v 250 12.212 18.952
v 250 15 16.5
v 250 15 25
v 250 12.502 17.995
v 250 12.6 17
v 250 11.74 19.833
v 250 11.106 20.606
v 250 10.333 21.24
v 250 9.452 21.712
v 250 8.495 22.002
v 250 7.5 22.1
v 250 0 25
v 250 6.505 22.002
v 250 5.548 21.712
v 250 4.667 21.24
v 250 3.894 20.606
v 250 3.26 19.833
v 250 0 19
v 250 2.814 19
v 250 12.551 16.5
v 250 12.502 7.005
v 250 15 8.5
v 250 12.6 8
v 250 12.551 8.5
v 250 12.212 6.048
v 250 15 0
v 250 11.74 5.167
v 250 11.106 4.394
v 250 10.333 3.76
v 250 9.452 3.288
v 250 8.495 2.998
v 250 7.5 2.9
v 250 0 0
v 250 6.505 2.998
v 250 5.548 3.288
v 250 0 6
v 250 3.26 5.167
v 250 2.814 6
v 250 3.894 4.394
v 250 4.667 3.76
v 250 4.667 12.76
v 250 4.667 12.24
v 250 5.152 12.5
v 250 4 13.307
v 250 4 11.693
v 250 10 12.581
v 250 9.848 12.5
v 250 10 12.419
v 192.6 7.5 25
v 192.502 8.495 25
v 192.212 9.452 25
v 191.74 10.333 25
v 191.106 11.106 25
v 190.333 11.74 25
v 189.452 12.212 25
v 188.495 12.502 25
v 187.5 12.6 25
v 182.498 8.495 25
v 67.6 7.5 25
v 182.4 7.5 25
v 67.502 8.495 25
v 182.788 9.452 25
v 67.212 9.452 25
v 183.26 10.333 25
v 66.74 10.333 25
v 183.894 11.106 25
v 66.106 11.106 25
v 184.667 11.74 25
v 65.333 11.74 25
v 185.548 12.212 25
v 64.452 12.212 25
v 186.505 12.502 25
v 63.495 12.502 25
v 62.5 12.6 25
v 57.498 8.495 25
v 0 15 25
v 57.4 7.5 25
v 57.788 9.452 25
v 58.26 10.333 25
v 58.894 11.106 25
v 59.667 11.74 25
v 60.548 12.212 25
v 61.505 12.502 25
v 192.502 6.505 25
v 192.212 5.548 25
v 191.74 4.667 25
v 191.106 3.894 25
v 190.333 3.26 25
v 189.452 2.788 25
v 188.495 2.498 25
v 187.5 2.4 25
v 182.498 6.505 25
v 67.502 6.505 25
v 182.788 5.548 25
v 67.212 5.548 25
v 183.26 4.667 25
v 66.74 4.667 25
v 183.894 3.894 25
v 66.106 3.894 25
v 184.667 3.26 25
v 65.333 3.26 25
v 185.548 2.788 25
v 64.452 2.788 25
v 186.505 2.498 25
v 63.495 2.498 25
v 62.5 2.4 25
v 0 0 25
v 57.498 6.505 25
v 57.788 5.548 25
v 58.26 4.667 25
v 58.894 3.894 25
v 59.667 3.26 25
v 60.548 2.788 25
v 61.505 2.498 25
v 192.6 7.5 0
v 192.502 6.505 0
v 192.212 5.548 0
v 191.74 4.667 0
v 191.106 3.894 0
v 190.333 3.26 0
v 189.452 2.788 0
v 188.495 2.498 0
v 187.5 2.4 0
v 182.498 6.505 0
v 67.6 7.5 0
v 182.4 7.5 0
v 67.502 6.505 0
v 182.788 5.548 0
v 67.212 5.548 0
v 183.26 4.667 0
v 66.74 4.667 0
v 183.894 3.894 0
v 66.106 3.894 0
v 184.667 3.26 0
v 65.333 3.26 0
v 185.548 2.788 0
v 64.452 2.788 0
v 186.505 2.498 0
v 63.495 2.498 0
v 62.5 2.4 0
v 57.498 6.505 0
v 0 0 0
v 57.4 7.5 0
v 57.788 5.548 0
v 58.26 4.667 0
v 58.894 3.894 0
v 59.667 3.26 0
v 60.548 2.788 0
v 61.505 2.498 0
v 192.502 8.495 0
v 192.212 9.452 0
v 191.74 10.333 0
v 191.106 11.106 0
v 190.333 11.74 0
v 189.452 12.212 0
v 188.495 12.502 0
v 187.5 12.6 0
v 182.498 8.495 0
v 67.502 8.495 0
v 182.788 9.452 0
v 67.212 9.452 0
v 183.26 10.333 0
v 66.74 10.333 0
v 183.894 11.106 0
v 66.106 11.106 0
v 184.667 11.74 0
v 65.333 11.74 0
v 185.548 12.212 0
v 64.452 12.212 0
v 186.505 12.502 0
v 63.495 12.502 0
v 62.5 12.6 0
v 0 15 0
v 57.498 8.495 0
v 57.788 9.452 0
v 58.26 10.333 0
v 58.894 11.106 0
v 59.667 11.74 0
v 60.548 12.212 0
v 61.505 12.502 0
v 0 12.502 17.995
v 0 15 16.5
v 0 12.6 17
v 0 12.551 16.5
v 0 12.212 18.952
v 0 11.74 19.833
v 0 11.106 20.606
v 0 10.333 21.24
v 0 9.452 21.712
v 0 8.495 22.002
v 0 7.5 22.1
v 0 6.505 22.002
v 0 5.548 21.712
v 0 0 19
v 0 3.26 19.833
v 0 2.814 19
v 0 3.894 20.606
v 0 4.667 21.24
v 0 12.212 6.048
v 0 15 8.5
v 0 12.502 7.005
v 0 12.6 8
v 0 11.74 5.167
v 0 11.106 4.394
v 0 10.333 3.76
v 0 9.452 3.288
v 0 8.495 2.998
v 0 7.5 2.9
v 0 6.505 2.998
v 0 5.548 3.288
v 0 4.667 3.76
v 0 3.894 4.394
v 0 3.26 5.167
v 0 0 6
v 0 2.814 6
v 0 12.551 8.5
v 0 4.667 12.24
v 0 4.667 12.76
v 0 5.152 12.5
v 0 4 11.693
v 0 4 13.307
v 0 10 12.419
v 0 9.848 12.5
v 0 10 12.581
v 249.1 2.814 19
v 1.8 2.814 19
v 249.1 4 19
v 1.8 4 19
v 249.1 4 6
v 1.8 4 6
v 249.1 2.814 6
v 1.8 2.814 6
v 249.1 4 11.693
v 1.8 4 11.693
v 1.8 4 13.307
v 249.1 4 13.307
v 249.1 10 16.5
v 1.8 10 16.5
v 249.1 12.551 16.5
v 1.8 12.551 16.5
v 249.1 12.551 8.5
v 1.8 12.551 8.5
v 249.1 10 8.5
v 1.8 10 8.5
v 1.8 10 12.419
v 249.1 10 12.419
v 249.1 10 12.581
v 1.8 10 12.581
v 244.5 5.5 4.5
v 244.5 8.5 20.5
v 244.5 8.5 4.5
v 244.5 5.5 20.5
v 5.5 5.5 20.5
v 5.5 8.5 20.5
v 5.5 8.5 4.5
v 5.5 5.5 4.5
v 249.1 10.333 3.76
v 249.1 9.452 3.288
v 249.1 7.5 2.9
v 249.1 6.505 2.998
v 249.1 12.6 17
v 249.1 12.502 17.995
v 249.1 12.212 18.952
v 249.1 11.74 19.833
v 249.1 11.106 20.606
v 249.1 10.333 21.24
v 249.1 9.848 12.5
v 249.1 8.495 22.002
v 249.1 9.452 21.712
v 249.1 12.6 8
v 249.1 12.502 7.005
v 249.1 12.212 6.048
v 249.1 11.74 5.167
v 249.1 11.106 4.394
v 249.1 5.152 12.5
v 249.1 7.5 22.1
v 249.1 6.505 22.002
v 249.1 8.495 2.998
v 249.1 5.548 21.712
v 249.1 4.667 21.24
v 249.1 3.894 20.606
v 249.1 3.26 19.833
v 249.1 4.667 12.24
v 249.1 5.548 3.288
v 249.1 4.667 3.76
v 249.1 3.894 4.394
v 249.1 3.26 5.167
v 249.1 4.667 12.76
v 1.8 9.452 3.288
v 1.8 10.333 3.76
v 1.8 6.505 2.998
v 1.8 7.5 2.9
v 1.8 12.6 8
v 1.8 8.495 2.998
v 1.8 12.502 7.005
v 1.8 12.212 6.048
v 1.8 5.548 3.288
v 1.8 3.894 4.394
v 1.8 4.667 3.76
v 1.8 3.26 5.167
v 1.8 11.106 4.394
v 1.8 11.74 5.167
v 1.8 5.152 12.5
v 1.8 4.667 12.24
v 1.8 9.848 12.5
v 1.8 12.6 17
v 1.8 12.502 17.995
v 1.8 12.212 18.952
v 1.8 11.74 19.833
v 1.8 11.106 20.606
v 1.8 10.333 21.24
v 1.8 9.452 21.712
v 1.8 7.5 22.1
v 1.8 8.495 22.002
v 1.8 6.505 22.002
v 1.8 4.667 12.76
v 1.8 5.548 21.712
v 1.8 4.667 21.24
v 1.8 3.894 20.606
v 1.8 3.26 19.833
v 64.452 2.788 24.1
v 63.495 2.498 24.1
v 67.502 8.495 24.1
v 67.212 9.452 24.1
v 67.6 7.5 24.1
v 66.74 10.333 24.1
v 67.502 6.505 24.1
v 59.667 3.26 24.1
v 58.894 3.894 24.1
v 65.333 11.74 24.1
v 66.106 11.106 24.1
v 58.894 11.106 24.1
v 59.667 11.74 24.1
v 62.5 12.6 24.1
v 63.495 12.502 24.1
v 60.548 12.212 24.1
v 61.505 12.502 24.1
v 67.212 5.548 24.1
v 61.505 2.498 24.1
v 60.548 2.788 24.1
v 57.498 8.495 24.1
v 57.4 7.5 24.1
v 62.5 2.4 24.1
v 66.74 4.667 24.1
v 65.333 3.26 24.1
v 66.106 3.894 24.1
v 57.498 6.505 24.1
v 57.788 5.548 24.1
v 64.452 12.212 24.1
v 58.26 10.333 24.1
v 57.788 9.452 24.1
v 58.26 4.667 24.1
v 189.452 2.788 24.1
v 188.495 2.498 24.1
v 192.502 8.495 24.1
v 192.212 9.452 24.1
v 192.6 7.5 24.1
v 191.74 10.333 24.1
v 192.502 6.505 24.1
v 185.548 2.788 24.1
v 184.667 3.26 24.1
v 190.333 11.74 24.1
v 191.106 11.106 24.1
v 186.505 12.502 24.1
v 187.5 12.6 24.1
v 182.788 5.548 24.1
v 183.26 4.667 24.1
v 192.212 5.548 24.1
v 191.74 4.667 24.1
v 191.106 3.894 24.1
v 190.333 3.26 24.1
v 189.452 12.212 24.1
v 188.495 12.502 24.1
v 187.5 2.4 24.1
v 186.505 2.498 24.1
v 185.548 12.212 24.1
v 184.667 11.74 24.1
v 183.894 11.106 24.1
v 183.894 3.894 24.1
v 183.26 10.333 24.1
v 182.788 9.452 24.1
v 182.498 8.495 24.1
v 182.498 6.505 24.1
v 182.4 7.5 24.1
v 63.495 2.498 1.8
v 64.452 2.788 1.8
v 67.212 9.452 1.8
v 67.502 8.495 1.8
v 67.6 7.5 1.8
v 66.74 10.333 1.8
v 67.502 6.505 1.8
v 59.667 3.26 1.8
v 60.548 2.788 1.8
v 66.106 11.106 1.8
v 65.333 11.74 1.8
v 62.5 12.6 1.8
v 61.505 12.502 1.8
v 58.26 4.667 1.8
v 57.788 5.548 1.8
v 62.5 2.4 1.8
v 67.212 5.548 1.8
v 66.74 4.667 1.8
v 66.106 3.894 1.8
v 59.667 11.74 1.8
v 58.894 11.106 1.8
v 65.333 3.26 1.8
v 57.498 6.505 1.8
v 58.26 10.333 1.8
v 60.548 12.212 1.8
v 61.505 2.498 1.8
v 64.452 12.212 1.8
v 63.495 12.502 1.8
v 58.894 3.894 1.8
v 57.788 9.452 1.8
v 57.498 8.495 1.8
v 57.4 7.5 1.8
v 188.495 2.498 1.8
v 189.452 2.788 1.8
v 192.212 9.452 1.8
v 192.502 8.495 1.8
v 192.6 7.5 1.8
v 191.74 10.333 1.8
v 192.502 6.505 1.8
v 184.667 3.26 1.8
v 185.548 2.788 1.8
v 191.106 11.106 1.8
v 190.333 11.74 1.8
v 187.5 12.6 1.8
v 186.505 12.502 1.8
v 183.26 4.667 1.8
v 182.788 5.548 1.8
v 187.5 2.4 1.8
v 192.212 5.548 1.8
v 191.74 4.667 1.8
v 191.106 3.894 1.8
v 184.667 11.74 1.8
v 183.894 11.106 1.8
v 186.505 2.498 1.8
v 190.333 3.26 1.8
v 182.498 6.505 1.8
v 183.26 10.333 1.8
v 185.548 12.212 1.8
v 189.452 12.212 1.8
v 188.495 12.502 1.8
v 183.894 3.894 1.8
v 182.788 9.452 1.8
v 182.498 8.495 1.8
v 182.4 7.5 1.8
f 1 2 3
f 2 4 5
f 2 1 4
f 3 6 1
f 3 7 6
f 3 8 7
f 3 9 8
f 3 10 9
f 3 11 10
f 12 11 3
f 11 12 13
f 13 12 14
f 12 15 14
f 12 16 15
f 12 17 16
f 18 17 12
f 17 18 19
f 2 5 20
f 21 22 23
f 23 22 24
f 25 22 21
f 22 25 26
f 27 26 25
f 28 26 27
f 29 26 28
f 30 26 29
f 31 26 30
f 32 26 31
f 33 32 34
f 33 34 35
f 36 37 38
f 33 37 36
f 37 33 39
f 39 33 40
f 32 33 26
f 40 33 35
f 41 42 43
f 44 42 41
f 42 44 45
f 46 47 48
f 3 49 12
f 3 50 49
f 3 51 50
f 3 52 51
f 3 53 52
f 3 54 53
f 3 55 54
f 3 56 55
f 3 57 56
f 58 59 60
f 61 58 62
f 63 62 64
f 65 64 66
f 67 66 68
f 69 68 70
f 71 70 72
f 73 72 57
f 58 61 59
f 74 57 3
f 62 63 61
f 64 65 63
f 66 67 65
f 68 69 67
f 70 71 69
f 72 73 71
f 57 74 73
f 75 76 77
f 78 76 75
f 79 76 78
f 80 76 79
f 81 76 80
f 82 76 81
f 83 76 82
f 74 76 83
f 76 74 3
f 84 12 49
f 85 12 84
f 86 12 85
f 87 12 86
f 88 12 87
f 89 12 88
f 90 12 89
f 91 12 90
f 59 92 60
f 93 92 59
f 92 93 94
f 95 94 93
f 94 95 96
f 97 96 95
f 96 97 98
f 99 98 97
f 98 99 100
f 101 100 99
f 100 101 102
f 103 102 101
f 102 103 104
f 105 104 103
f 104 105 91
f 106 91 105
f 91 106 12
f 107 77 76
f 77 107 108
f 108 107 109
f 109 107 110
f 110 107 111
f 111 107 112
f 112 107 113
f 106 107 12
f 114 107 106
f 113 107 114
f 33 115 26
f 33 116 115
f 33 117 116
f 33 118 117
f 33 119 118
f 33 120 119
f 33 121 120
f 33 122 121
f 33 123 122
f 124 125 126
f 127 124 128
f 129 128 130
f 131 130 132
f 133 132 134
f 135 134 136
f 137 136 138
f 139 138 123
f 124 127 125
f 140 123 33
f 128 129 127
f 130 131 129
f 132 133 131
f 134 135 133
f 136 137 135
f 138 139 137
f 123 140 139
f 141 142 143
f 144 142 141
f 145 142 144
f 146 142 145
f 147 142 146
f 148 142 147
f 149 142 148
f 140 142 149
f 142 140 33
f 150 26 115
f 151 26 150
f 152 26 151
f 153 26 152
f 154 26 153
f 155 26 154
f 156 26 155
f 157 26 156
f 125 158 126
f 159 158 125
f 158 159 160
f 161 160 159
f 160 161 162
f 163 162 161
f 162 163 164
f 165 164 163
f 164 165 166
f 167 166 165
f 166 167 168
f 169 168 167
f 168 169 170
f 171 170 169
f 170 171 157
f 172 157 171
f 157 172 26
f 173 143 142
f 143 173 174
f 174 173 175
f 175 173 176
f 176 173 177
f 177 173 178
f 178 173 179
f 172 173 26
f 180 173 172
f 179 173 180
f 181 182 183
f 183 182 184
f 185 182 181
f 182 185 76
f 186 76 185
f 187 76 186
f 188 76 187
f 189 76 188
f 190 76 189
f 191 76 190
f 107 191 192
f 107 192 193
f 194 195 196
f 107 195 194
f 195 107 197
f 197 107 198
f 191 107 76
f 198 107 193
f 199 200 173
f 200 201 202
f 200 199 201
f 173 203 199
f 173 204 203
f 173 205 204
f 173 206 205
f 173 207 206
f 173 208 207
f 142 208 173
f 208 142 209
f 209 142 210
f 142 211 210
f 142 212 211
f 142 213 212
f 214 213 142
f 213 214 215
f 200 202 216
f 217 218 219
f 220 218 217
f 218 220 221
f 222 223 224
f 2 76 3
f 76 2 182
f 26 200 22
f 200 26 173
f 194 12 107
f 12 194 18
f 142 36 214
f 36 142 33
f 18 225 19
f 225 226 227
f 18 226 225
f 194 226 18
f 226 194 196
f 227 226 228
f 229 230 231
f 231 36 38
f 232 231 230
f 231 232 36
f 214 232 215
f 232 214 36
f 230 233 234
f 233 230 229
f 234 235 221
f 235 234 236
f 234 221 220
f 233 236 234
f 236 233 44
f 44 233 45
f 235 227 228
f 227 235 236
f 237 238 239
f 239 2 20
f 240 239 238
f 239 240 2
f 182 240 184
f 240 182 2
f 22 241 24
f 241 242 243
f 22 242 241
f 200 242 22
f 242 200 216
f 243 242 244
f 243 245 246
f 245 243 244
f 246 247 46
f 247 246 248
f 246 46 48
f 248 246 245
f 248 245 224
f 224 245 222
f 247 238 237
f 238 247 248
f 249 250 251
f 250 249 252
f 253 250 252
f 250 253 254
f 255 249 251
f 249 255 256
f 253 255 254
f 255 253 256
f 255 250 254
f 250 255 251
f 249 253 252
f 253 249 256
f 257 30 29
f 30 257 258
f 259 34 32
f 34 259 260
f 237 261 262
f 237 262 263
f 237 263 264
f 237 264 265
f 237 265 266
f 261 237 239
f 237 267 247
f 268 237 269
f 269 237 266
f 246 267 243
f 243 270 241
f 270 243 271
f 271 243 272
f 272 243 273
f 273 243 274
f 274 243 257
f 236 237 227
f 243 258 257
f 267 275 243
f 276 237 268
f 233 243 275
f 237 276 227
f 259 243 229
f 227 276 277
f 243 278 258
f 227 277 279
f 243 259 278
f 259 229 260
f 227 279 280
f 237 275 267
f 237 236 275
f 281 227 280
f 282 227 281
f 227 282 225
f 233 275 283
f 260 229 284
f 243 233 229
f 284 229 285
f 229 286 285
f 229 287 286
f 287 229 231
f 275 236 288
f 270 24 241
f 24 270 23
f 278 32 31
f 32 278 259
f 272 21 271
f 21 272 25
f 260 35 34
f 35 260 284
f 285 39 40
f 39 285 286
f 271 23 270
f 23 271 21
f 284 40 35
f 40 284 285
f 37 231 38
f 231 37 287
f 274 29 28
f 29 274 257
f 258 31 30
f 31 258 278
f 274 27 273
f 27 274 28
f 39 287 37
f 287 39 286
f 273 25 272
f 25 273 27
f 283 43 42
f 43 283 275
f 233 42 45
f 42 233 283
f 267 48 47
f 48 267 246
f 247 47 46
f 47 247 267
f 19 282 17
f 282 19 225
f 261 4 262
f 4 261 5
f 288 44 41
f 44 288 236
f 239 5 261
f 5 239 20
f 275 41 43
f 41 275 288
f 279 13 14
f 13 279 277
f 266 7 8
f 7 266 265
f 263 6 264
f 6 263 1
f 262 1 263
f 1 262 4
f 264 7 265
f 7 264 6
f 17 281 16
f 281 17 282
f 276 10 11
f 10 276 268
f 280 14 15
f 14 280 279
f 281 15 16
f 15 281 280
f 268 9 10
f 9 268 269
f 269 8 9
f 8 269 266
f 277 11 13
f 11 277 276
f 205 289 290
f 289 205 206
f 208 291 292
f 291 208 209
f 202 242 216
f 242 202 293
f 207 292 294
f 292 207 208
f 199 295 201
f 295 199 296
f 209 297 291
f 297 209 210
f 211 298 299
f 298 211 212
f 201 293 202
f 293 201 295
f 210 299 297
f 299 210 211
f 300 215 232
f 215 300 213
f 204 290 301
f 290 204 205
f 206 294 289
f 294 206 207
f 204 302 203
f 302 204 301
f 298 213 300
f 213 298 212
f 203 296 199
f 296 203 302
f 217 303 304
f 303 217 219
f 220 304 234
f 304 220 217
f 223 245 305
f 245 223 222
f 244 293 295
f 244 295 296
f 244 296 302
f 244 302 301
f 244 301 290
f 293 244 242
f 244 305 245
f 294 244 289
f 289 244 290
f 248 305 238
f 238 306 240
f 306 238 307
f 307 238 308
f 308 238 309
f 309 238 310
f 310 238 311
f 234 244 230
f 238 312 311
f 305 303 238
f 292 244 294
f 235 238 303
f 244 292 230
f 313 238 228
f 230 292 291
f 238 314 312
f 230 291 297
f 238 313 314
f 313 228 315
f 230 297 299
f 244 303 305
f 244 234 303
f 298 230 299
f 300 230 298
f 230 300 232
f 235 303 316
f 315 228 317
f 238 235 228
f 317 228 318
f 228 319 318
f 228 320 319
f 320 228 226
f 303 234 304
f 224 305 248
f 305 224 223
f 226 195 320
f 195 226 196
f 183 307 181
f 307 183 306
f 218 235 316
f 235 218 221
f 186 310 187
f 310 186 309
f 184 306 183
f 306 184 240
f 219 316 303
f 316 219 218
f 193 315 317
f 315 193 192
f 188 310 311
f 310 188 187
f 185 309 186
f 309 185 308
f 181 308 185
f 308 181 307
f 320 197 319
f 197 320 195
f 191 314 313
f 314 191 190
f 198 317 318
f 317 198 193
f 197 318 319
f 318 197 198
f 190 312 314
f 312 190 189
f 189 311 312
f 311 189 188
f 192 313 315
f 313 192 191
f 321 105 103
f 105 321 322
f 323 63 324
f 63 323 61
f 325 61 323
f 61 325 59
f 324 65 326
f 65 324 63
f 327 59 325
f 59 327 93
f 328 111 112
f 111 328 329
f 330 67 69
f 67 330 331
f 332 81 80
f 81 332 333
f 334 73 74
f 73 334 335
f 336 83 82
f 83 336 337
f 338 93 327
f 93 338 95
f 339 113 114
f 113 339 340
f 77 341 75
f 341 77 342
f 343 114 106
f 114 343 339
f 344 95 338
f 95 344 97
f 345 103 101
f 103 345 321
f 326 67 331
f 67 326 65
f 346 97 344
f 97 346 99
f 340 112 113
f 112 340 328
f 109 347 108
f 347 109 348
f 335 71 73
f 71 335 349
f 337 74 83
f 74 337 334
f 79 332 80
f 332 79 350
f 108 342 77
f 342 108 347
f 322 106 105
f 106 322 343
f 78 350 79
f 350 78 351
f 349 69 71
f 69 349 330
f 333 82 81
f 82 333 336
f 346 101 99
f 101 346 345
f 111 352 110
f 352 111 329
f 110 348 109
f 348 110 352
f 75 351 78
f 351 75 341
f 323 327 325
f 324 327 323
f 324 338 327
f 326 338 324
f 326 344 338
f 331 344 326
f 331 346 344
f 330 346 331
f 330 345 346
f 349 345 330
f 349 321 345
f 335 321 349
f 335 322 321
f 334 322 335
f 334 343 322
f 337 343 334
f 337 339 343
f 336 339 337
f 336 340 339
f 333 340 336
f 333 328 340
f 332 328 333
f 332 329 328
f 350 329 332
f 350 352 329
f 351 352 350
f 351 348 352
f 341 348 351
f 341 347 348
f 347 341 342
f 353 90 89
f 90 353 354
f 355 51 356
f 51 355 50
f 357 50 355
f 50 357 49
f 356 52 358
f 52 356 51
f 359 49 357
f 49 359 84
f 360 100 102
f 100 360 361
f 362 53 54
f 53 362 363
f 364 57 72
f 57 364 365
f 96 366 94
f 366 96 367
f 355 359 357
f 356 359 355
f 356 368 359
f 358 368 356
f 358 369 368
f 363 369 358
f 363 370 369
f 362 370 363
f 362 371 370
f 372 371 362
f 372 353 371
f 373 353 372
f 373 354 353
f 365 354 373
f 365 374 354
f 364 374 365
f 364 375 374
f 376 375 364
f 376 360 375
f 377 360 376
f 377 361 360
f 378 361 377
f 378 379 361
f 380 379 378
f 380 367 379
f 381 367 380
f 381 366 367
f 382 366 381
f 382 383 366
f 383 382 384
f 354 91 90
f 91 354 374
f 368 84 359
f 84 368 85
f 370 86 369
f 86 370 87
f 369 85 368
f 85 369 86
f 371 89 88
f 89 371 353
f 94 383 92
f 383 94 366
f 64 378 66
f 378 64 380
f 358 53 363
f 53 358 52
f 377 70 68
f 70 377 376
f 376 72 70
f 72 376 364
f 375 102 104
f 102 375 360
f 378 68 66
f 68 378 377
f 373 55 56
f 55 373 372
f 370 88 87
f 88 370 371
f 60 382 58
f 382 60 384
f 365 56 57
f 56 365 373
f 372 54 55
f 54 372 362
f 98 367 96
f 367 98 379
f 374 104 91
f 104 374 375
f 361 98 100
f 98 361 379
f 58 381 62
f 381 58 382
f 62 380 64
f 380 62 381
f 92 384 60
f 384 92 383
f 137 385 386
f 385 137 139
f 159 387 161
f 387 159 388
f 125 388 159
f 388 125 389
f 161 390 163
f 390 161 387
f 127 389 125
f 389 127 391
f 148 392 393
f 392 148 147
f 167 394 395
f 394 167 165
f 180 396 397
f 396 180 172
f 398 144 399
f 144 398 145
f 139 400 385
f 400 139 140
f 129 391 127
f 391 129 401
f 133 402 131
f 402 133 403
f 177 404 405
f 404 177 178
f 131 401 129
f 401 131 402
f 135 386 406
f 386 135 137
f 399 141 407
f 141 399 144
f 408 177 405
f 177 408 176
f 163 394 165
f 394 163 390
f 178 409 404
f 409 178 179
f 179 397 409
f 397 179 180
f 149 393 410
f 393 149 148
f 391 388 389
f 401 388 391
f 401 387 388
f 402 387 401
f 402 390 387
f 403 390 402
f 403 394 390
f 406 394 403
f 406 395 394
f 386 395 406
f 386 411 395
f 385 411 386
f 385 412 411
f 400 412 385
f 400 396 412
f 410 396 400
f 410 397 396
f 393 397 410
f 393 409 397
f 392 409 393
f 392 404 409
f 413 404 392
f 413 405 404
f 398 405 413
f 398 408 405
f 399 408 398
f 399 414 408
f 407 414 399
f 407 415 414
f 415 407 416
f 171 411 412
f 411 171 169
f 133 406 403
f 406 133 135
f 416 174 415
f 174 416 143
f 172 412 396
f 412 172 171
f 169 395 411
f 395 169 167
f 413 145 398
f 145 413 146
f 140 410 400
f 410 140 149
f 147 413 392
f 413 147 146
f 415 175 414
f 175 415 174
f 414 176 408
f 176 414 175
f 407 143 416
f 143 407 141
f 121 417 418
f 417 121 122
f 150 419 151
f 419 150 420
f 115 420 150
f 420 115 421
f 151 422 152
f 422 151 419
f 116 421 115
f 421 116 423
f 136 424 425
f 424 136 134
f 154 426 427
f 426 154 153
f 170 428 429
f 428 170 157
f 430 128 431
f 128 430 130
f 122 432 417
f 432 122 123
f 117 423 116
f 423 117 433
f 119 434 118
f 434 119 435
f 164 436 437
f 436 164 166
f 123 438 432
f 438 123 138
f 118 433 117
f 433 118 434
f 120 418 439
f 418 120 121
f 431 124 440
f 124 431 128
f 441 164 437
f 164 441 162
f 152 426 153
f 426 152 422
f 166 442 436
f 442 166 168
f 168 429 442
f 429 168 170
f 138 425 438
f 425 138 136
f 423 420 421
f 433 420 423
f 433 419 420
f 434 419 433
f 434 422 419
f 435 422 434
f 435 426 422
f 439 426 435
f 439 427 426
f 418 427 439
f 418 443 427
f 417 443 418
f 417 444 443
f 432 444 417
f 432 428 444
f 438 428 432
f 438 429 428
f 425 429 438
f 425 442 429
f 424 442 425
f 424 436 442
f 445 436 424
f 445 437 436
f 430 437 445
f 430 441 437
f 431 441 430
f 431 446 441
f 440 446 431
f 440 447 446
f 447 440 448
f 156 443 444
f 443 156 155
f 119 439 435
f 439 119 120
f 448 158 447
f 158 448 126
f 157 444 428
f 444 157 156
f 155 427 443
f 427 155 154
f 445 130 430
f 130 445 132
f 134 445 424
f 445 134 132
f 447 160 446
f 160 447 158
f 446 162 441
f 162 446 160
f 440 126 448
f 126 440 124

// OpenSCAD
/*
 * Single LED Strip Module - Minimal Design
 * Compact holder for one section of WS2812B LED strip
 *
 * Features:
 * - Minimal size - just enough to hold the strip
 * - 4 magnet holes for modular connections
 * - Lightweight and movable
 */

// ========== CONFIGURATION ==========

// LED Strip dimensions
strip_segment_length = 250;  // Length of this module
strip_width = 12;            // WS2812B strip width

// Module dimensions (MINIMIZED)
module_width = strip_segment_length;
module_height = 25;          // 2.5cm vertical spacing (compact!)
module_depth = 15;           // Reduced from 20mm to 15mm
wall_thickness = 1.5;        // Reduced from 2mm to 1.5mm

// LED channel (on front)
led_channel_depth = 4;       // Shallow groove (reduced from 5mm)
led_channel_width = 13;      // Strip + tiny clearance

// Wire channel (on back)
wire_channel_width = 8;      // Narrow channel for wires
wire_channel_depth = 5;      // Back routing space

// Magnets (user's magnets: 10mm dia × 1.54mm thick)
magnet_dia = 10.2;           // 10mm + 0.2mm tolerance
magnet_thickness = 1.8;      // 1.54mm + tolerance (thin!)
magnet_inset = 8;            // Distance from edges (adjusted for 25mm height)

// ========== SINGLE MODULE ==========

module minimal_strip_holder() {
    difference() {
        // Main body - thin shell
        cube([module_width, module_depth, module_height]);

        // Front LED channel (OPEN ENDS - strip passes through)
        translate([-0.1, -0.1, module_height/2 - led_channel_width/2])
            cube([module_width + 0.2,  // Goes all the way through left to right
                  led_channel_depth + 0.1,
                  led_channel_width]);

        // Back wire channel (OPEN ENDS - wires pass through)
        translate([-0.1, module_depth - wire_channel_depth, module_height/2 - wire_channel_width/2])
            cube([module_width + 0.2,  // Goes all the way through left to right
                  wire_channel_depth + 0.1,
                  wire_channel_width]);

        // Center cavity (weight reduction)
        translate([wall_thickness + 4,
                  led_channel_depth + wall_thickness,
                  wall_thickness + 3])
            cube([module_width - 2*wall_thickness - 8,
                  module_depth - led_channel_depth - wire_channel_depth - 2*wall_thickness,
                  module_height - 2*wall_thickness - 6]);

        // HORIZONTAL magnets (left/right)
        // Right side
        translate([module_width - magnet_thickness/2, module_depth/2, magnet_inset])
            rotate([0, 90, 0])
            cylinder(h=magnet_thickness + 0.1, d=magnet_dia, $fn=32);
        translate([module_width - magnet_thickness/2, module_depth/2, module_height - magnet_inset])
            rotate([0, 90, 0])
            cylinder(h=magnet_thickness + 0.1, d=magnet_dia, $fn=32);

        // Left side
        translate([-0.1, module_depth/2, magnet_inset])
            rotate([0, 90, 0])
            cylinder(h=magnet_thickness + 0.1, d=magnet_dia, $fn=32);
        translate([-0.1, module_depth/2, module_height - magnet_inset])
            rotate([0, 90, 0])
            cylinder(h=magnet_thickness + 0.1, d=magnet_dia, $fn=32);

        // VERTICAL magnets (top/bottom)
        // Top
        translate([module_width/4, module_depth/2, module_height - magnet_thickness/2])
            cylinder(h=magnet_thickness + 0.1, d=magnet_dia, $fn=32);
        translate([3*module_width/4, module_depth/2, module_height - magnet_thickness/2])
            cylinder(h=magnet_thickness + 0.1, d=magnet_dia, $fn=32);

        // Bottom
        translate([module_width/4, module_depth/2, -0.1])
            cylinder(h=magnet_thickness + 0.1, d=magnet_dia, $fn=32);
        translate([3*module_width/4, module_depth/2, -0.1])
            cylinder(h=magnet_thickness + 0.1, d=magnet_dia, $fn=32);
    }
}

// LED strip visualization (optional)
module led_strip_visual() {
    color("white", 0.9)
    translate([wall_thickness, led_channel_depth - 3, module_height/2 - strip_width/2])
    rotate([90, 0, 0])
    cube([module_width - 2*wall_thickness, strip_width, 3]);

    // LEDs
    led_spacing = module_width / 36;  // 36 LEDs per module
    for (i = [0:35]) {
        color("gold", 0.8)
        translate([i * led_spacing + led_spacing/2,
                  1,
                  module_height/2])
            rotate([90, 0, 0])
            cylinder(h=2, d=4, $fn=6);
    }
}

// ========== RENDER ==========

// Show module
minimal_strip_holder();

// Show LED strip (uncomment to visualize)
// led_strip_visual();

// ========== EXPORT NOTES ==========
/*
 * DIMENSIONS:
 * - Size: 250mm (W) × 50mm (H) × 15mm (D)
 * - Weight: ~15-18g per module (at 15% infill)
 * - Wall thickness: 1.5mm
 *
 * MAGNETS:
 * - 4× 10mm × 3mm neodymium magnets per module
 * - Amazon: "neodymium magnets 10mm x 3mm N52"
 *
 * PRINTING:
 * - Layer height: 0.2mm
 * - Infill: 15%
 * - No supports needed
 * - Print time: ~1-1.5 hours per module
 *
 * CUSTOMIZATION:
 * - Adjust module_width for different lengths (e.g., 200mm, 333mm)
 * - Change module_height for different spacing (e.g., 30mm, 40mm, 60mm)
 * - Modify led_channel_width if your strip is wider/narrower
 *
 * EXPORT STL:
 * openscad -o module.stl single_module.scad
 */
